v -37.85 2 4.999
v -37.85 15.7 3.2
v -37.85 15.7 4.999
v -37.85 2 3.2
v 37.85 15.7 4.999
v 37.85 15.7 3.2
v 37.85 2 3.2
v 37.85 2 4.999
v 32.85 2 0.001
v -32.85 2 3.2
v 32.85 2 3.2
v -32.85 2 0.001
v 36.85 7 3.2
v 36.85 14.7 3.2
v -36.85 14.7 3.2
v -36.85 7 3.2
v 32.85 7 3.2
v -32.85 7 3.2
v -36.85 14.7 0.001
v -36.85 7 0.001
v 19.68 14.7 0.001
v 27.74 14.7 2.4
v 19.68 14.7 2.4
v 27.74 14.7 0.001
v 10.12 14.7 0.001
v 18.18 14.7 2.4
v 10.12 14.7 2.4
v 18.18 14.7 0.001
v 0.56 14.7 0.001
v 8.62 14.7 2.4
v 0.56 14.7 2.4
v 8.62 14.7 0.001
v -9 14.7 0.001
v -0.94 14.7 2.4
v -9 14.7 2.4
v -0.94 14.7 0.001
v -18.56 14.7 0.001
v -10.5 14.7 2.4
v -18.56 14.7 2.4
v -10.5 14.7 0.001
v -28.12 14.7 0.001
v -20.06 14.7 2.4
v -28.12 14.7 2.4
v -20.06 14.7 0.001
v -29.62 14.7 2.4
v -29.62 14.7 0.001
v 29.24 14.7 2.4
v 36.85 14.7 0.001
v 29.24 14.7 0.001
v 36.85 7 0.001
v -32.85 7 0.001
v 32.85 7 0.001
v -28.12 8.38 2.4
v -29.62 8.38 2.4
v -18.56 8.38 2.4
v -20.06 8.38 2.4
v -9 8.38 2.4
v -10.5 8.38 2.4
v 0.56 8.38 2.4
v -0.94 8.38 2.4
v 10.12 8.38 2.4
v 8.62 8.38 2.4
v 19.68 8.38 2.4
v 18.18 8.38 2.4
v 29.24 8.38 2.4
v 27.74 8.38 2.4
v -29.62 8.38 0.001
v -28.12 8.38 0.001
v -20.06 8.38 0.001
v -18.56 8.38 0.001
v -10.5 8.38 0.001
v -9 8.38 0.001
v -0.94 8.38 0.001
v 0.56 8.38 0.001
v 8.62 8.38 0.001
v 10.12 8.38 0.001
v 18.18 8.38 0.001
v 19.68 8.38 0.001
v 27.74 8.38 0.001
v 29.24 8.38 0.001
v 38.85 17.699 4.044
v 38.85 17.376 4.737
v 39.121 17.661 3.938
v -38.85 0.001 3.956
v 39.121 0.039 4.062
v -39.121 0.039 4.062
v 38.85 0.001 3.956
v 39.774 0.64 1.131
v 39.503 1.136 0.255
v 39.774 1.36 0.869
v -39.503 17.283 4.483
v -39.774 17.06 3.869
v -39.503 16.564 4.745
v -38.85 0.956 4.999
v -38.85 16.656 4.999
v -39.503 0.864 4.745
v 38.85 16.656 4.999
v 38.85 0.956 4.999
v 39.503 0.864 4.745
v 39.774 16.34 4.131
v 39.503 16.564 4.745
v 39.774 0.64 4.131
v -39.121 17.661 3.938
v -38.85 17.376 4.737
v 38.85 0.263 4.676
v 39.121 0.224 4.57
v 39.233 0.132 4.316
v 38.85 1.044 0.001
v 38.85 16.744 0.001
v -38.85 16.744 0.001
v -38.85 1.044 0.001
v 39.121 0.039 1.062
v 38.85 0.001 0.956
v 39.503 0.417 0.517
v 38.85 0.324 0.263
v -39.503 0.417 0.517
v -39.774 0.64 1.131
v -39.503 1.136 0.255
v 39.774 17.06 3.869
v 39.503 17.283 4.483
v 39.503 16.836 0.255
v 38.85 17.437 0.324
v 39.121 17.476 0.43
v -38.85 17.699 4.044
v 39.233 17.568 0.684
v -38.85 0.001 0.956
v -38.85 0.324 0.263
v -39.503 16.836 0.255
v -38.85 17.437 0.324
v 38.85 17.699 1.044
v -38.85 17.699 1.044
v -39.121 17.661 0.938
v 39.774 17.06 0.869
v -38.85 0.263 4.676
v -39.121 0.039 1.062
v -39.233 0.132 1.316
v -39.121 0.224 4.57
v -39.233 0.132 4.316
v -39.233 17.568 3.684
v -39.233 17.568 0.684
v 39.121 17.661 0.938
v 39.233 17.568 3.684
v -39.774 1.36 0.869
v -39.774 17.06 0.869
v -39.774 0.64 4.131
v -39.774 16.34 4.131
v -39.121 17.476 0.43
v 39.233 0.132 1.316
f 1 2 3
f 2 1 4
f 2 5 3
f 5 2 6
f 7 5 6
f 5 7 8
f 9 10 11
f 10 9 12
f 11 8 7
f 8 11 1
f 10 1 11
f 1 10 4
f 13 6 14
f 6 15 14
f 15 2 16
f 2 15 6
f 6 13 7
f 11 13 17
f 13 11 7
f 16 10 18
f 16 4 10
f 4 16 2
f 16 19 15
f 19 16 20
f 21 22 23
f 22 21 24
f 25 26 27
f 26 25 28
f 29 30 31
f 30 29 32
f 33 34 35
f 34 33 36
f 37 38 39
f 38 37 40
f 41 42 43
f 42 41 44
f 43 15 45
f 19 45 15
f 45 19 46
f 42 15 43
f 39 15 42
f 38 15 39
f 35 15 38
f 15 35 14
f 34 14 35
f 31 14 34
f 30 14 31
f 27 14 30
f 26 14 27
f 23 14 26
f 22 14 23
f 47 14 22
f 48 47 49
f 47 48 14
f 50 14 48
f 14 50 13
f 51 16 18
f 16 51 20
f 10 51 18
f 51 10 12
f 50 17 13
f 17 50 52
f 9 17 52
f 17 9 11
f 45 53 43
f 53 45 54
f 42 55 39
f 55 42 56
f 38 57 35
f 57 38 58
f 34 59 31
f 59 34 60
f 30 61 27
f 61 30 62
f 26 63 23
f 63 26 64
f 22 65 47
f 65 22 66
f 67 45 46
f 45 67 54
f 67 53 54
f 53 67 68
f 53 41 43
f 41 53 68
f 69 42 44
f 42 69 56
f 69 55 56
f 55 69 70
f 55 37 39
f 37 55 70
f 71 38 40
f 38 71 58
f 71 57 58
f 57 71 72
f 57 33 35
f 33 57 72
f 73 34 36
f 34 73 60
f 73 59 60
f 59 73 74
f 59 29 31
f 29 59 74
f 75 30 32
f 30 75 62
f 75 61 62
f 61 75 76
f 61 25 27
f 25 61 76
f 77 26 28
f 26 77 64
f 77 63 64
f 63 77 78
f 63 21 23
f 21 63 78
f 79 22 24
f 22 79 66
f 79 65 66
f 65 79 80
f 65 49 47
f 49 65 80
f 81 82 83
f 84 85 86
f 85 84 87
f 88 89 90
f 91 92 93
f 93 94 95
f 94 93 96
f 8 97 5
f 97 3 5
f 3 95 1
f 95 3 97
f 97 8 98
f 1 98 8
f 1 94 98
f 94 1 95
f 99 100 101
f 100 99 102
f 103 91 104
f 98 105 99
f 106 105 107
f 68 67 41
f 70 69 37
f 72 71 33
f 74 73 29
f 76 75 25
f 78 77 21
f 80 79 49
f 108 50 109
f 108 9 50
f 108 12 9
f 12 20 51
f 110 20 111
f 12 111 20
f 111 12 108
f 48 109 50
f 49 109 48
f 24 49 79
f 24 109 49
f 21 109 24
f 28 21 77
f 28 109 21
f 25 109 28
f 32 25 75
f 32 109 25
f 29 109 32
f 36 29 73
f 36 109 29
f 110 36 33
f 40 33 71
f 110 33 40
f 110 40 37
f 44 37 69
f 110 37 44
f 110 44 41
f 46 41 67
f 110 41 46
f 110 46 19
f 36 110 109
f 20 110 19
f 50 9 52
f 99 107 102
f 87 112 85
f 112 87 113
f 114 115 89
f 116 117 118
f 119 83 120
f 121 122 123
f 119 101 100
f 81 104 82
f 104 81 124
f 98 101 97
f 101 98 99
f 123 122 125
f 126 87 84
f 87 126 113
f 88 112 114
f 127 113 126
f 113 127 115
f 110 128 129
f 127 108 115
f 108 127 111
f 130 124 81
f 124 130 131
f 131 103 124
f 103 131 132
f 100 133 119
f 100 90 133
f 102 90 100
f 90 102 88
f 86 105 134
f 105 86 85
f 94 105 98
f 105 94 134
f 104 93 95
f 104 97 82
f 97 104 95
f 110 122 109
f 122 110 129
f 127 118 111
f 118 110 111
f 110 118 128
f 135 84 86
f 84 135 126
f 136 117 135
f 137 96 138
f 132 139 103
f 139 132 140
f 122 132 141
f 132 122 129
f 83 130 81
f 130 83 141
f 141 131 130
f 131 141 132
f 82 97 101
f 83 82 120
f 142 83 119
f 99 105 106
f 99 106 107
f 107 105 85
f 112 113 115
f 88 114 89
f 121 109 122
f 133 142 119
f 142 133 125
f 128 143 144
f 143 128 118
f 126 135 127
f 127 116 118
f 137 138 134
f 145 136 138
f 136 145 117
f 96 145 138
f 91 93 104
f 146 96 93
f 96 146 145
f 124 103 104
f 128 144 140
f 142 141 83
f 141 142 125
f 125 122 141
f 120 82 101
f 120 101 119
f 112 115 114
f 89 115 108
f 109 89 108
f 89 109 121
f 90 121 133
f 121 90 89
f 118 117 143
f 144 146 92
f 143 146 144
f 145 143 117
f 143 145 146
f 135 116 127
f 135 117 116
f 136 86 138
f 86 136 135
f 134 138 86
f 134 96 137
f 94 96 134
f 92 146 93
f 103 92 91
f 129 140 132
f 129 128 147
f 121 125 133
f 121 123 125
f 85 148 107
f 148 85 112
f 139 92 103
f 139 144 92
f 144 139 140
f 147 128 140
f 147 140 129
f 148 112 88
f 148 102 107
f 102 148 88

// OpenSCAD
// Vector-9000 - fast line follower robot (version 1.0)
// by Carlosgs (http://carlosgs.es) and Víctor Uceda
// CC-BY-SA license (http://creativecommons.org/licenses/by-sa/3.0/)
// Check http://www.thingiverse.com/thing:65012 for more information

// Original line sensor designed by bitswype (see http://www.thingiverse.com/thing:30516)


$fn = 50;

inches_to_mm = 25.4;

shell_thickness = 2;
sensor_width = 75.2+0.5;
sensor_depth = 13.2+0.5;
support_thickness = 1;
peg_square = 5;


finger_thickness = 1.5;
finger_offset = 8.73+0.25;
finger_center = 9.56;
finger_length = 6.32;

shell_height = 5;
support_height = 3.2;

finger_height = support_height-0.8;

// ----- sensor arm parameters
spacer_thickness = 10.7;
arm_thickness = 5;
connector_height = 24;  //34
connector_thickness = 4;
bolt_spacing = 4;
sensor_connector_depth = 10;
peg_diameter = 3.5;
arm_height = 7;  //17
arm_spacing = 12;
arm_hole_clearance = 0.5;
arm_width = 4;
arm_length = 50;
robot_extra_size = 6;
robot_thickness = 4;
screw_head_clearance = 4;
screw_center = 0.5*inches_to_mm;
screw_hole_diameter = 0.185*inches_to_mm;
arm_clearance = 4;


sensor_holder_length = 2*shell_thickness+sensor_width;
sensor_holder_width = 2*shell_thickness+sensor_depth;

support_h = shell_height;
support_w = 25*2;
support_l = 40;

restpoint_hole_depth = 2.5;

// for printing
translate([-sensor_holder_length/2,0,0])
  intersection() { // Create rounded border
    sensor_holder();
    roundedRect([sensor_holder_length,sensor_holder_width,shell_height],1);
  }

//sensor_arm();

//robot_arm_connector();

//arm_spacer();


// --------------------- construct the holder ---------------------------------

//sensor_holder();
//sensor_connector();
//
//color("orange") translate([shell_thickness+sensor_width/2-spacer_thickness/2,-sensor_connector_depth/2,arm_height]) rotate([90,0,-90]) sensor_arm();
//color("orange") translate([shell_thickness+sensor_width/2-spacer_thickness/2,-sensor_connector_depth/2,arm_height+arm_spacing]) rotate([90,0,-90]) sensor_arm();
//
//color("orange") translate([shell_thickness+sensor_width/2+spacer_thickness/2,-sensor_connector_depth/2,arm_height]) rotate([-90,0,-90]) sensor_arm();
//color("orange") translate([shell_thickness+sensor_width/2+spacer_thickness/2,-sensor_connector_depth/2,arm_height+arm_spacing]) rotate([-90,0,-90]) sensor_arm();
//
//color("green") translate([shell_thickness+sensor_width/2-spacer_thickness/2,-sensor_connector_depth/2-arm_length,arm_height]) rotate([0,90,0]) arm_spacer();
//color("green") translate([shell_thickness+sensor_width/2-spacer_thickness/2,-sensor_connector_depth/2-arm_length,arm_height+arm_spacing]) rotate([0,90,0]) arm_spacer();
//
//
//
//color("blue") translate([shell_thickness+sensor_width/2, -sensor_connector_depth/2-arm_length, arm_height]) rotate([-90,0,-90]) translate([-robot_extra_size-screw_center/2, -(robot_thickness+arm_width+arm_clearance+peg_diameter/2+arm_spacing), -(2*robot_thickness+2*screw_head_clearance+screw_center)/2]) union()
//{
//  robot_arm_connector();
//
//  translate([2*robot_extra_size+screw_center,0, 2*robot_thickness+2*screw_head_clearance+screw_center])rotate([0,180,0]) robot_arm_connector();
//}

// --------------------modules-------------------------------

module sensor_connector()
{
  difference()
  {
    // main connector body
    translate([shell_thickness+sensor_width/2-spacer_thickness/2,-sensor_connector_depth, 0]) cube([spacer_thickness,sensor_connector_depth,connector_height]);
    // left side pegs
    translate([shell_thickness+sensor_width/2-spacer_thickness/2-1,-sensor_connector_depth/2,arm_height]) rotate([0,90,0]) cylinder(r=peg_diameter/2, h=spacer_thickness+2);
    translate([shell_thickness+sensor_width/2-spacer_thickness/2-1,-sensor_connector_depth/2,arm_height+arm_spacing]) rotate([0,90,0]) cylinder(r=peg_diameter/2, h=spacer_thickness+2);
  }
}

module arm_spacer()
{
  linear_extrude(height=spacer_thickness) difference()
  {
    circle(r= peg_diameter/2+arm_hole_clearance/2+arm_width/2);
    circle(r= peg_diameter/2+arm_hole_clearance/2);
  }
}

module robot_arm_connector()
{
  difference()
  {
    union()
    {
      cube([2*robot_extra_size+screw_center, robot_thickness, robot_thickness+2*screw_head_clearance]);
      cube([2*robot_extra_size+screw_center, robot_thickness+arm_width+arm_clearance+peg_diameter+arm_spacing+peg_diameter, robot_thickness]);
    }
    
    translate([robot_extra_size, robot_thickness/2, robot_thickness+screw_head_clearance]) rotate([90,0,0]) cylinder(r=screw_hole_diameter/2, h=robot_thickness+2, center=true);
    translate([robot_extra_size+screw_center, robot_thickness/2, robot_thickness+screw_head_clearance]) rotate([90,0,0]) cylinder(r=screw_hole_diameter/2, h=robot_thickness+2, center=true);
    
      // pegs
    translate([robot_extra_size+screw_center/2, robot_thickness+arm_width+arm_clearance+peg_diameter/2, -1]) cylinder(r=peg_diameter/2, h=robot_thickness+2);
    translate([robot_extra_size+screw_center/2, robot_thickness+arm_width+arm_clearance+peg_diameter/2+arm_spacing, -1]) cylinder(r=peg_diameter/2, h=robot_thickness+2);
  }
  
  
}

module sensor_arm()
{
  linear_extrude(height = arm_thickness) difference()
  {
    union()
    {
      translate([0,-arm_width/2]) square([arm_length, arm_width]);
      circle(r= peg_diameter/2+arm_hole_clearance/2+arm_width/2);
      translate([arm_length,0,0]) circle(r= peg_diameter/2+arm_hole_clearance/2+arm_width/2);    
    }
    
    circle(r= peg_diameter/2+arm_hole_clearance/2);
    translate([arm_length,0,0]) circle(r= peg_diameter/2+arm_hole_clearance/2);
  }
}

module sensor_holder()
{
  union()
  {
    // A
    linear_extrude(height=shell_height)
    difference()
    {
      //roundedRect([2*shell_thickness+sensor_width,2*shell_thickness+sensor_depth,shell_height],2);
      square([2*shell_thickness+sensor_width,2*shell_thickness+sensor_depth]);
      translate([shell_thickness, shell_thickness]) square([sensor_width, sensor_depth]);
      //translate([shell_thickness, shell_thickness, -1]) cube([sensor_width, sensor_depth, shell_height*2]);
    }

    // B
    linear_extrude(height=support_height) union()
    {
      translate([shell_thickness, shell_thickness]) square([support_thickness, sensor_depth]);
      translate([shell_thickness+sensor_width-support_thickness, shell_thickness]) square([support_thickness, sensor_depth]);
      translate([shell_thickness,shell_thickness+sensor_depth-support_thickness]) square([sensor_width, support_thickness]);
    }

    // C
    linear_extrude(height=support_height) union()
    {
      translate([shell_thickness,shell_thickness]) square([peg_square, peg_square]);
      translate([shell_thickness+sensor_width-peg_square,shell_thickness]) square([peg_square, peg_square]);
    }

    // D
    //translatecircle(r=peg_diameter/2);

    // fingers
    linear_extrude(height = finger_height) for(i = [0:6])
    {
      translate([shell_thickness-finger_thickness/2+finger_offset+i*finger_center,shell_thickness+sensor_depth-finger_length-support_thickness]) square([finger_thickness, finger_length]);
    }
  }
}




// http://www.thingiverse.com/thing:9347
module roundedRect(size, radius)
{
$fn=8;
x = size[0]-radius*2;
y = size[1]-radius*2;
z = size[2]-radius*2;

translate([radius,radius,radius])
minkowski()
{
cube(size=[x,y,z]);
rotate([70,0,0]) sphere(r=radius);
}
}

// http://www.thingiverse.com/thing:9347
module roundedRect2D(size, radius)
{
$fn=8;
x = size[0]-radius*2;
y = size[1]-radius*2;
z = size[2];

minkowski()
{
cube(size=[x,y,z],center=true);
cylinder(r=radius,h=0.00001);
}
}
